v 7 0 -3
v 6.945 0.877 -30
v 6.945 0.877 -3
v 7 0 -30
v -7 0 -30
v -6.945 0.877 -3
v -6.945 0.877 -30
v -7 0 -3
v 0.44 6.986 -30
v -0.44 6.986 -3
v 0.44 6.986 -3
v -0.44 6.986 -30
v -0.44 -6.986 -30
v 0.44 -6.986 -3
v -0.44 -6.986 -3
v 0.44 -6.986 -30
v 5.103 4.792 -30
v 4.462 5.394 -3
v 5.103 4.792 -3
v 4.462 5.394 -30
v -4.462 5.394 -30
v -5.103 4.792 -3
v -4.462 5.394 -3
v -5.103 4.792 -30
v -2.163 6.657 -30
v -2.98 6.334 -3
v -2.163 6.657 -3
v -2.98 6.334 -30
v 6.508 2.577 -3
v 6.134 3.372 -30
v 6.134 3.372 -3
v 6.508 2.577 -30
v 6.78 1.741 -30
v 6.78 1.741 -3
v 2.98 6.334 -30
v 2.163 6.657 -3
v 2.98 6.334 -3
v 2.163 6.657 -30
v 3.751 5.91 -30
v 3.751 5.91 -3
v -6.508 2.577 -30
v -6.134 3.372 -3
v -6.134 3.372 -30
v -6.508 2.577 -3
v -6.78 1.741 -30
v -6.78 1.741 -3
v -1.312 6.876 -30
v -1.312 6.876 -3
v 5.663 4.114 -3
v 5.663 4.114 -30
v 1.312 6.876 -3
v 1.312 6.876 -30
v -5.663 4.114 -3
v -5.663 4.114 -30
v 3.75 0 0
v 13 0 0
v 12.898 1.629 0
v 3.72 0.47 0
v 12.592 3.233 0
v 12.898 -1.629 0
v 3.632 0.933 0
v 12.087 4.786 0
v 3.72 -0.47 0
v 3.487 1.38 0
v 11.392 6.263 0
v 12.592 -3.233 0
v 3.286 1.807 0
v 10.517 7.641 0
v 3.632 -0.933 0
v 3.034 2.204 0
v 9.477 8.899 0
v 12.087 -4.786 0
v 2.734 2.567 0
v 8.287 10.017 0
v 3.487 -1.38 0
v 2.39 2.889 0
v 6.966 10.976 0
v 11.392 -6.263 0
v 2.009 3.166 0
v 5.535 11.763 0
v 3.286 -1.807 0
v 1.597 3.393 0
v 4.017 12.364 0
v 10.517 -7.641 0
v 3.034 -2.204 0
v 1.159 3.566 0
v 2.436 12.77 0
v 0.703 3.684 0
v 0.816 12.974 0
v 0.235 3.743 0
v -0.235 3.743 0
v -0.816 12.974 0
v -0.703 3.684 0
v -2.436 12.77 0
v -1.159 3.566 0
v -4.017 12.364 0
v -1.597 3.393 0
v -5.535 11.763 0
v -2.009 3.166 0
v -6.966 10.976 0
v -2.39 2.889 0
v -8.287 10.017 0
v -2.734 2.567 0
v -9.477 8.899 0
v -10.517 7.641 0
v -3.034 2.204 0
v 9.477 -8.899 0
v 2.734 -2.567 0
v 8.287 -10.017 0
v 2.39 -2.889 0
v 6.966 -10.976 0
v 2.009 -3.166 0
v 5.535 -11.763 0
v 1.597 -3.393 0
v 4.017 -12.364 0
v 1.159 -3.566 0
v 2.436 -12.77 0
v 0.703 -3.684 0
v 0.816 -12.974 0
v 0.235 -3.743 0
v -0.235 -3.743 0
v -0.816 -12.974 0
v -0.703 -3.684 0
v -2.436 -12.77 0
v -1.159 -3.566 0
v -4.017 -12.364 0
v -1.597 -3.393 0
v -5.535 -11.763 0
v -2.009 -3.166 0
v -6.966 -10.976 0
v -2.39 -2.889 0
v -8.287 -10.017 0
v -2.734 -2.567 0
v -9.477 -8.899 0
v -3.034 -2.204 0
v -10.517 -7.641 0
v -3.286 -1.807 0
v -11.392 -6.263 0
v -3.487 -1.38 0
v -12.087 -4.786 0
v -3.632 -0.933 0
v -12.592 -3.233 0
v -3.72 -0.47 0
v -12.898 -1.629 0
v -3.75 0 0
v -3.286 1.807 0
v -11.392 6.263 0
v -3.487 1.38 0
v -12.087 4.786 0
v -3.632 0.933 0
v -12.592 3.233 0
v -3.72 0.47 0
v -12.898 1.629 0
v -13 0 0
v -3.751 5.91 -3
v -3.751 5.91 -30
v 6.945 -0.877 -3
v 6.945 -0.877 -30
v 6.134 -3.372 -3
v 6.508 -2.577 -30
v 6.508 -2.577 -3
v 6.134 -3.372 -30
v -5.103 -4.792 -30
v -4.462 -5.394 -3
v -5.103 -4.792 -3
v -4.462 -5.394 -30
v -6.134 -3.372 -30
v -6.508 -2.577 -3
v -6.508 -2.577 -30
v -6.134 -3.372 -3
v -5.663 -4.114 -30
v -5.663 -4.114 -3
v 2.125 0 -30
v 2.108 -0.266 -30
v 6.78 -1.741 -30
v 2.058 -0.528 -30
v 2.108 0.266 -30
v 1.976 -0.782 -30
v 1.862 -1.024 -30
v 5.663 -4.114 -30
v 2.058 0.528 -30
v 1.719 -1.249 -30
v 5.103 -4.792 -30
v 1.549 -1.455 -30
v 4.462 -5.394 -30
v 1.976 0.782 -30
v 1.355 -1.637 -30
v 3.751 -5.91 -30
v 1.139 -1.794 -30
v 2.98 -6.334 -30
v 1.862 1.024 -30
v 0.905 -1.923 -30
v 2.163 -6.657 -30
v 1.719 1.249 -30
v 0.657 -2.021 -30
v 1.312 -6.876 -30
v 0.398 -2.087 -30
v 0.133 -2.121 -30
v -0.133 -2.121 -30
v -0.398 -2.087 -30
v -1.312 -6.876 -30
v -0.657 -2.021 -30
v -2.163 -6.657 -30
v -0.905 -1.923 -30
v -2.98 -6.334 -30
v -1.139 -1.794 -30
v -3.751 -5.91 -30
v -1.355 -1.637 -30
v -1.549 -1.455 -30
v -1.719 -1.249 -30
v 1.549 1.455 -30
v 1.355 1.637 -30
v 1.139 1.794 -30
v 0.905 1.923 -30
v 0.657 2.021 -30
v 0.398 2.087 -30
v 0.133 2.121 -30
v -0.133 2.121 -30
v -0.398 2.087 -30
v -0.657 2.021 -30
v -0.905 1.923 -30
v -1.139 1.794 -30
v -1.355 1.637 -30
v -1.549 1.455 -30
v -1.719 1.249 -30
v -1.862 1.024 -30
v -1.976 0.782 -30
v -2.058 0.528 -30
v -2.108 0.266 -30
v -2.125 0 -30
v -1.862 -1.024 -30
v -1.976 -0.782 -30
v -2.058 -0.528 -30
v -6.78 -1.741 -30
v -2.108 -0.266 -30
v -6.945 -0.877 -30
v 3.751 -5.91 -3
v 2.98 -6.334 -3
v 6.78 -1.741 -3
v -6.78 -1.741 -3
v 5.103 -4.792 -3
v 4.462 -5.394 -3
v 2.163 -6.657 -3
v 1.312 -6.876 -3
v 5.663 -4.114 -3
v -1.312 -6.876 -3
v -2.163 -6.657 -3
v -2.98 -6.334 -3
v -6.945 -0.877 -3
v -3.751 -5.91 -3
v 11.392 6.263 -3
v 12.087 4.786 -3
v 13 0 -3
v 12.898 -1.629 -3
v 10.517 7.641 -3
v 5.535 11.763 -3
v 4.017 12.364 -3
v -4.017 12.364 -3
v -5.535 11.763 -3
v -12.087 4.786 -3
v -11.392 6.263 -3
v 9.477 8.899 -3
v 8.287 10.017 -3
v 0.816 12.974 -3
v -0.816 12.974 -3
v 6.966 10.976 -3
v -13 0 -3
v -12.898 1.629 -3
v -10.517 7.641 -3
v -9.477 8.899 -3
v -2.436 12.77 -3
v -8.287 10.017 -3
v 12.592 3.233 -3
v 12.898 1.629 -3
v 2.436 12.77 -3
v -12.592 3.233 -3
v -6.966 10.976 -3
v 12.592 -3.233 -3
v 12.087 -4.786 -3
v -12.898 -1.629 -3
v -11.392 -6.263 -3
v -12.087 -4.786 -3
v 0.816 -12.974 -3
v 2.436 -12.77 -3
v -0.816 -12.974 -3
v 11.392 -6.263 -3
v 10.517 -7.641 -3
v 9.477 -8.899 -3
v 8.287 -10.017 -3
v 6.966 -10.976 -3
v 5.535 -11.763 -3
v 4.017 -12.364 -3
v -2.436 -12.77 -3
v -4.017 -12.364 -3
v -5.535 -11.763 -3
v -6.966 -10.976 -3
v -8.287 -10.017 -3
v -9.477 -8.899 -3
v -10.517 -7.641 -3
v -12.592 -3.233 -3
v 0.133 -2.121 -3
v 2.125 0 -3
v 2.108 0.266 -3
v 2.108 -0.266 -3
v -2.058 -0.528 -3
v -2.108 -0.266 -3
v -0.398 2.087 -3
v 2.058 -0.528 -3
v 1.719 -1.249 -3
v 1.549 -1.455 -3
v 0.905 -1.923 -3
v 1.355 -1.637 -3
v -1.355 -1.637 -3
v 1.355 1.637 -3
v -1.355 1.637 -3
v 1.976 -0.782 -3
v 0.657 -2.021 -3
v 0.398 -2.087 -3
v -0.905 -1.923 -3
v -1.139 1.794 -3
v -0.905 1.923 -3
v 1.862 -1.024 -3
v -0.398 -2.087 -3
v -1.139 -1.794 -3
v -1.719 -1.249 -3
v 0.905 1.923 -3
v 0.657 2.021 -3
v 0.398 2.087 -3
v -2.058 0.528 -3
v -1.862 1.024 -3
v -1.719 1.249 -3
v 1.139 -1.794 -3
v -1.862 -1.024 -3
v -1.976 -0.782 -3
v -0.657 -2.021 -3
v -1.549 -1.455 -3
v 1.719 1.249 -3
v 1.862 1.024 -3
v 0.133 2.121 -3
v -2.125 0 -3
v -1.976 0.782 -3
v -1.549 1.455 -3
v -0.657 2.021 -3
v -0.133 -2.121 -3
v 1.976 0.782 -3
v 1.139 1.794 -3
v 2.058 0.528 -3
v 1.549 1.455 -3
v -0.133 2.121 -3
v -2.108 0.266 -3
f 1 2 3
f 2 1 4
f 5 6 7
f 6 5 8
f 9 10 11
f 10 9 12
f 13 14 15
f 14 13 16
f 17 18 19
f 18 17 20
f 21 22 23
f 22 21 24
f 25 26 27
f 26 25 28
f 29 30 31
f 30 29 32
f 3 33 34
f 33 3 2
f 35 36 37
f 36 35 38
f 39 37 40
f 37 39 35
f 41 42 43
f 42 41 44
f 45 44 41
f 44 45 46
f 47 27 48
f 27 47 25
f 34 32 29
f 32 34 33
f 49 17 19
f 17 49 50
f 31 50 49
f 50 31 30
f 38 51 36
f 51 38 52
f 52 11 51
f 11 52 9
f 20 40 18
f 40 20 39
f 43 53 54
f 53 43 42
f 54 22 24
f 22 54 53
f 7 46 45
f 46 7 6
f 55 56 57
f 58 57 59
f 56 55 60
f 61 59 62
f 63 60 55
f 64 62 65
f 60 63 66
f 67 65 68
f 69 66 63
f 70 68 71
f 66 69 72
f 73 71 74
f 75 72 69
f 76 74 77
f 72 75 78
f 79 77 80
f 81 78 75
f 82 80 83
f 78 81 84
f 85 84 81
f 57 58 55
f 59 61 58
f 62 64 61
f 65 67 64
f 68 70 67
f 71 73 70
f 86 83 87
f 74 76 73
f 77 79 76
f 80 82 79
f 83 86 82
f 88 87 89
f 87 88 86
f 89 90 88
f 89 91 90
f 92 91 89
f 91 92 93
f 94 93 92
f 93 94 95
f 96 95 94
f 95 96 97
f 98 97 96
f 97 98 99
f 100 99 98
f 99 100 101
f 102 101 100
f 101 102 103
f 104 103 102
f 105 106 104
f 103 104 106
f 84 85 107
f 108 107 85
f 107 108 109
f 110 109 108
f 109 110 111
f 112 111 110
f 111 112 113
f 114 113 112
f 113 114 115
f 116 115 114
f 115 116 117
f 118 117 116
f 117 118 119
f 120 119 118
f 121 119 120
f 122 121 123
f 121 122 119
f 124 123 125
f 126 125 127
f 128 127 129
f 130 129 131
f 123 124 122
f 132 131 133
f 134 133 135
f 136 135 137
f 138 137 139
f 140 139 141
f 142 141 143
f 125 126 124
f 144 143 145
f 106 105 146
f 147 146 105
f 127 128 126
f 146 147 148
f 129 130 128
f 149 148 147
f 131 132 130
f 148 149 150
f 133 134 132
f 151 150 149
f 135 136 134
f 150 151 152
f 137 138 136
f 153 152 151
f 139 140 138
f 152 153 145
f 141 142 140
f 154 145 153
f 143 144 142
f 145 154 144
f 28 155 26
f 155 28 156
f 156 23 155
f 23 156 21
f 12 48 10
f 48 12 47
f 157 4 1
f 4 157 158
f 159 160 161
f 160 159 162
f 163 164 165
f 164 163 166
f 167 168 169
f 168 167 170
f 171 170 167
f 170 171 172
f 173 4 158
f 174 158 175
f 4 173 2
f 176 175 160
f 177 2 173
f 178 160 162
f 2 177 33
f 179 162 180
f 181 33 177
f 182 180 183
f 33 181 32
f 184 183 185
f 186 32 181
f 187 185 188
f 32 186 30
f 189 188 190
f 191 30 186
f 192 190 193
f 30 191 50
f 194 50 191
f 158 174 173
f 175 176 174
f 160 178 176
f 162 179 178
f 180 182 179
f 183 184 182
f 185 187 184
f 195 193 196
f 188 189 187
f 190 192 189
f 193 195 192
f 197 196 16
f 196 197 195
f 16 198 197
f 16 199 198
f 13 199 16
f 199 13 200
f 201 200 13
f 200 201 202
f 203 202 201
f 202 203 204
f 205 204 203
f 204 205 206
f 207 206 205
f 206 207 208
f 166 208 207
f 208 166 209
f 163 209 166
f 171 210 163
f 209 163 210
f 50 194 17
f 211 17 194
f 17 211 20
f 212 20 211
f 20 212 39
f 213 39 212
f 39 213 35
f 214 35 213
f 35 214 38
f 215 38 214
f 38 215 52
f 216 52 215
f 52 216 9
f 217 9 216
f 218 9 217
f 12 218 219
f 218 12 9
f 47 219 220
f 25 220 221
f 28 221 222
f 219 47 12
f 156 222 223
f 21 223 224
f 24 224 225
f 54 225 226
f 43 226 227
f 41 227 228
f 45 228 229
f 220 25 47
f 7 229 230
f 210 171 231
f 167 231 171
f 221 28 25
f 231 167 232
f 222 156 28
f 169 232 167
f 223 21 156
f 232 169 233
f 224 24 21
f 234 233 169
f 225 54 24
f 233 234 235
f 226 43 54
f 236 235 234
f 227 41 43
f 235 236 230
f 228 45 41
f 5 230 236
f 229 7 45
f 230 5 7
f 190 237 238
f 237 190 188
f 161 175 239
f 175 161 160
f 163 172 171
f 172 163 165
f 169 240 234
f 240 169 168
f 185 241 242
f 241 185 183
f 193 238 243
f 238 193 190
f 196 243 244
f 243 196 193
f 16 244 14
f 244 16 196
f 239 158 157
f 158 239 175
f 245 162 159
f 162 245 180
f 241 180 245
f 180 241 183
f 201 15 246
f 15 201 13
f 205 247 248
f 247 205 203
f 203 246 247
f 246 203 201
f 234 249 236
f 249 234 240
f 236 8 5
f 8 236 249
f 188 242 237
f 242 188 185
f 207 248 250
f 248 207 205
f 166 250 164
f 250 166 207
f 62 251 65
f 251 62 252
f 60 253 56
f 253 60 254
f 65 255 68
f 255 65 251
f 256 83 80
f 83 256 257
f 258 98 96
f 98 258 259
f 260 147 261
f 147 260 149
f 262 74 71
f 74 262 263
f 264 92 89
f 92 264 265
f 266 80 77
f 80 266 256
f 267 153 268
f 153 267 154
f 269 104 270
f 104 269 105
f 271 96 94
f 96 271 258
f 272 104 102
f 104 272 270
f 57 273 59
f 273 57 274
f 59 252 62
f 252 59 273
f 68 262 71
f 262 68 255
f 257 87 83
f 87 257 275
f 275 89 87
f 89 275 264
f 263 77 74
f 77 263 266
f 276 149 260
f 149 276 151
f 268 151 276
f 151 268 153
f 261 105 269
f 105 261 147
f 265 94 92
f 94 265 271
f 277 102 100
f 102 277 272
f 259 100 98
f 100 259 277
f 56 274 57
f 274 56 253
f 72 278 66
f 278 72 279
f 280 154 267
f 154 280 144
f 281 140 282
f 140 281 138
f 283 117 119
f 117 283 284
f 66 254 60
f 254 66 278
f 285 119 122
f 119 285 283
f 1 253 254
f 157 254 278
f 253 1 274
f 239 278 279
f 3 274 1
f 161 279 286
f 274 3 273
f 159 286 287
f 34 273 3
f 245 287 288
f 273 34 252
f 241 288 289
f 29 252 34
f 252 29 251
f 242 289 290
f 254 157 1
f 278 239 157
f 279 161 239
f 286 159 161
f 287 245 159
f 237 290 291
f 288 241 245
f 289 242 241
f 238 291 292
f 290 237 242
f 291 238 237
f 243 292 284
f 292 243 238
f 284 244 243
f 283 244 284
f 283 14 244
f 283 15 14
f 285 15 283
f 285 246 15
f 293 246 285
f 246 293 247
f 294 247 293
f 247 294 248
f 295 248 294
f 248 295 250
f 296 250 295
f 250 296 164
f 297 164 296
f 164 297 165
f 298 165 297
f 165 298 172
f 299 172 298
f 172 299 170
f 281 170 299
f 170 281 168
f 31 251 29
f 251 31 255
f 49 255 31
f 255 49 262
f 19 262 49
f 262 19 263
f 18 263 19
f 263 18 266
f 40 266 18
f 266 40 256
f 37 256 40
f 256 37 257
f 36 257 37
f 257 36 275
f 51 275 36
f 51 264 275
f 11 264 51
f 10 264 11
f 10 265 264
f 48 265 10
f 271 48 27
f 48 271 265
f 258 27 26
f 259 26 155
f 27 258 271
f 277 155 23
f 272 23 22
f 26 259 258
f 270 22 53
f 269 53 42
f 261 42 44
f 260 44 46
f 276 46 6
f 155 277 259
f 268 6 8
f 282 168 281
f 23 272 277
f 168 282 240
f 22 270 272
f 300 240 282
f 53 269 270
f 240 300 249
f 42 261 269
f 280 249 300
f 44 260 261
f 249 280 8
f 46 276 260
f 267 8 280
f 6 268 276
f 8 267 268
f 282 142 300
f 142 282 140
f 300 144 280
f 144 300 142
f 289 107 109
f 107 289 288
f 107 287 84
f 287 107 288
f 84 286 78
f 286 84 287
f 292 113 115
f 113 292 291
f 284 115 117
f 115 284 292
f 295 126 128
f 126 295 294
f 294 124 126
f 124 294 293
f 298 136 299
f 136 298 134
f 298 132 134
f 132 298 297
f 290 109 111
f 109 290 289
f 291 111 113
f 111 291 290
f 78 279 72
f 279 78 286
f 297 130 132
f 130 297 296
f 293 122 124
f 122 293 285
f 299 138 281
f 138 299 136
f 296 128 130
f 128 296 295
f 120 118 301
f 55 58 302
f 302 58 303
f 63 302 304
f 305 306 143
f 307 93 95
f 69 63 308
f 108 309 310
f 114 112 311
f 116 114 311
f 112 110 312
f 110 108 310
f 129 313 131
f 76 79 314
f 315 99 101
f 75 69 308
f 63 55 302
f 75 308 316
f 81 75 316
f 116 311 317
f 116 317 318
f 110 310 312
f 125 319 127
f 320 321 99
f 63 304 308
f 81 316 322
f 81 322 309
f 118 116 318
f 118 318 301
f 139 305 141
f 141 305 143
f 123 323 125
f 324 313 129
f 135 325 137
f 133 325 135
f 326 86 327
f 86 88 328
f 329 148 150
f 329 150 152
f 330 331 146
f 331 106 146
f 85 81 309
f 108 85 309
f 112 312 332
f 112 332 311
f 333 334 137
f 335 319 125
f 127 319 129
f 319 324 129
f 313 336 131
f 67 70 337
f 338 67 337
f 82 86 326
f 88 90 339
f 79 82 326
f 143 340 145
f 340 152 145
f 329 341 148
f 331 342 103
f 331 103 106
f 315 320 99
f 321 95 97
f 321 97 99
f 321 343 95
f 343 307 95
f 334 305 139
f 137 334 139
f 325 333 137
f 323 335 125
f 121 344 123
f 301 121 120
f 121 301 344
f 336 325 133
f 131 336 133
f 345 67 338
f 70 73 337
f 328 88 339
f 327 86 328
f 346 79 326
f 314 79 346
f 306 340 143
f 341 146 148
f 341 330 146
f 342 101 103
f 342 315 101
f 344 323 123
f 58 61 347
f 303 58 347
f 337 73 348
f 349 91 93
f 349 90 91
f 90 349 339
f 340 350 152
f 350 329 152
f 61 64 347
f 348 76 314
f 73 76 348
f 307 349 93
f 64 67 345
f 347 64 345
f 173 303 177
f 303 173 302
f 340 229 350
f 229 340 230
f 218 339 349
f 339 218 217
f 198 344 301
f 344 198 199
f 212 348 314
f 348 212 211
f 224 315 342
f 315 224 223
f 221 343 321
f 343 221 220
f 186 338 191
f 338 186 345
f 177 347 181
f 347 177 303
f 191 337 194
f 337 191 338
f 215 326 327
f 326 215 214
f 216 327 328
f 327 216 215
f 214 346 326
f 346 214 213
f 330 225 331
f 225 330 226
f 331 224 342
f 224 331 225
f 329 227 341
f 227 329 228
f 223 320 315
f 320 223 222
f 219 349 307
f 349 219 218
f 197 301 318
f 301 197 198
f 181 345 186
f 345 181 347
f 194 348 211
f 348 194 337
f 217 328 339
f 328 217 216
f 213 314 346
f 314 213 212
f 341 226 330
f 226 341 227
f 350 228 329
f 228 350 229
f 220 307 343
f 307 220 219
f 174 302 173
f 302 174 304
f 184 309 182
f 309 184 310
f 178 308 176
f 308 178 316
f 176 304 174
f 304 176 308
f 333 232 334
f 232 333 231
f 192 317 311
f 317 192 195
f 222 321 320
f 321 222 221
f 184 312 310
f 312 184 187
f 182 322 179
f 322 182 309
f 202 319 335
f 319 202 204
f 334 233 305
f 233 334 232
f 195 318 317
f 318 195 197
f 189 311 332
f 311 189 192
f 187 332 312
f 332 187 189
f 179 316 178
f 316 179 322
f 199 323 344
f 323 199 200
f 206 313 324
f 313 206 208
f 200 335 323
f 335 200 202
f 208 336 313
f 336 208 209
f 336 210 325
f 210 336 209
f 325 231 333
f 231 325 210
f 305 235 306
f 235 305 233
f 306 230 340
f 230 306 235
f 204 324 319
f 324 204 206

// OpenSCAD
$fn = 50;


difference() {
	union() {
		translate(v = [0, 0, -30.0000000000]) {
			cylinder(h = 30, r = 7.0000000000);
		}
		translate(v = [0, 0, -3.0000000000]) {
			cylinder(h = 3, r = 13.0000000000);
		}
	}
	union() {
		translate(v = [0, 0, 0]) {
			rotate(a = [0, 0, 0]) {
				difference() {
					union() {
						#translate(v = [0, 0, -30.0000000000]) {
							cylinder(h = 30, r = 2.0000000000);
						}
						#translate(v = [0, 0, -3]) {
							cylinder(h = 3, r1 = 2.1250000000, r2 = 3.7500000000);
						}
						#translate(v = [0, 0, -30.0000000000]) {
							cylinder(h = 30, r = 2.1250000000);
						}
						#translate(v = [0, 0, -30.0000000000]) {
							cylinder(h = 30, r = 2.0000000000);
						}
					}
					union();
				}
			}
		}
	}
}
